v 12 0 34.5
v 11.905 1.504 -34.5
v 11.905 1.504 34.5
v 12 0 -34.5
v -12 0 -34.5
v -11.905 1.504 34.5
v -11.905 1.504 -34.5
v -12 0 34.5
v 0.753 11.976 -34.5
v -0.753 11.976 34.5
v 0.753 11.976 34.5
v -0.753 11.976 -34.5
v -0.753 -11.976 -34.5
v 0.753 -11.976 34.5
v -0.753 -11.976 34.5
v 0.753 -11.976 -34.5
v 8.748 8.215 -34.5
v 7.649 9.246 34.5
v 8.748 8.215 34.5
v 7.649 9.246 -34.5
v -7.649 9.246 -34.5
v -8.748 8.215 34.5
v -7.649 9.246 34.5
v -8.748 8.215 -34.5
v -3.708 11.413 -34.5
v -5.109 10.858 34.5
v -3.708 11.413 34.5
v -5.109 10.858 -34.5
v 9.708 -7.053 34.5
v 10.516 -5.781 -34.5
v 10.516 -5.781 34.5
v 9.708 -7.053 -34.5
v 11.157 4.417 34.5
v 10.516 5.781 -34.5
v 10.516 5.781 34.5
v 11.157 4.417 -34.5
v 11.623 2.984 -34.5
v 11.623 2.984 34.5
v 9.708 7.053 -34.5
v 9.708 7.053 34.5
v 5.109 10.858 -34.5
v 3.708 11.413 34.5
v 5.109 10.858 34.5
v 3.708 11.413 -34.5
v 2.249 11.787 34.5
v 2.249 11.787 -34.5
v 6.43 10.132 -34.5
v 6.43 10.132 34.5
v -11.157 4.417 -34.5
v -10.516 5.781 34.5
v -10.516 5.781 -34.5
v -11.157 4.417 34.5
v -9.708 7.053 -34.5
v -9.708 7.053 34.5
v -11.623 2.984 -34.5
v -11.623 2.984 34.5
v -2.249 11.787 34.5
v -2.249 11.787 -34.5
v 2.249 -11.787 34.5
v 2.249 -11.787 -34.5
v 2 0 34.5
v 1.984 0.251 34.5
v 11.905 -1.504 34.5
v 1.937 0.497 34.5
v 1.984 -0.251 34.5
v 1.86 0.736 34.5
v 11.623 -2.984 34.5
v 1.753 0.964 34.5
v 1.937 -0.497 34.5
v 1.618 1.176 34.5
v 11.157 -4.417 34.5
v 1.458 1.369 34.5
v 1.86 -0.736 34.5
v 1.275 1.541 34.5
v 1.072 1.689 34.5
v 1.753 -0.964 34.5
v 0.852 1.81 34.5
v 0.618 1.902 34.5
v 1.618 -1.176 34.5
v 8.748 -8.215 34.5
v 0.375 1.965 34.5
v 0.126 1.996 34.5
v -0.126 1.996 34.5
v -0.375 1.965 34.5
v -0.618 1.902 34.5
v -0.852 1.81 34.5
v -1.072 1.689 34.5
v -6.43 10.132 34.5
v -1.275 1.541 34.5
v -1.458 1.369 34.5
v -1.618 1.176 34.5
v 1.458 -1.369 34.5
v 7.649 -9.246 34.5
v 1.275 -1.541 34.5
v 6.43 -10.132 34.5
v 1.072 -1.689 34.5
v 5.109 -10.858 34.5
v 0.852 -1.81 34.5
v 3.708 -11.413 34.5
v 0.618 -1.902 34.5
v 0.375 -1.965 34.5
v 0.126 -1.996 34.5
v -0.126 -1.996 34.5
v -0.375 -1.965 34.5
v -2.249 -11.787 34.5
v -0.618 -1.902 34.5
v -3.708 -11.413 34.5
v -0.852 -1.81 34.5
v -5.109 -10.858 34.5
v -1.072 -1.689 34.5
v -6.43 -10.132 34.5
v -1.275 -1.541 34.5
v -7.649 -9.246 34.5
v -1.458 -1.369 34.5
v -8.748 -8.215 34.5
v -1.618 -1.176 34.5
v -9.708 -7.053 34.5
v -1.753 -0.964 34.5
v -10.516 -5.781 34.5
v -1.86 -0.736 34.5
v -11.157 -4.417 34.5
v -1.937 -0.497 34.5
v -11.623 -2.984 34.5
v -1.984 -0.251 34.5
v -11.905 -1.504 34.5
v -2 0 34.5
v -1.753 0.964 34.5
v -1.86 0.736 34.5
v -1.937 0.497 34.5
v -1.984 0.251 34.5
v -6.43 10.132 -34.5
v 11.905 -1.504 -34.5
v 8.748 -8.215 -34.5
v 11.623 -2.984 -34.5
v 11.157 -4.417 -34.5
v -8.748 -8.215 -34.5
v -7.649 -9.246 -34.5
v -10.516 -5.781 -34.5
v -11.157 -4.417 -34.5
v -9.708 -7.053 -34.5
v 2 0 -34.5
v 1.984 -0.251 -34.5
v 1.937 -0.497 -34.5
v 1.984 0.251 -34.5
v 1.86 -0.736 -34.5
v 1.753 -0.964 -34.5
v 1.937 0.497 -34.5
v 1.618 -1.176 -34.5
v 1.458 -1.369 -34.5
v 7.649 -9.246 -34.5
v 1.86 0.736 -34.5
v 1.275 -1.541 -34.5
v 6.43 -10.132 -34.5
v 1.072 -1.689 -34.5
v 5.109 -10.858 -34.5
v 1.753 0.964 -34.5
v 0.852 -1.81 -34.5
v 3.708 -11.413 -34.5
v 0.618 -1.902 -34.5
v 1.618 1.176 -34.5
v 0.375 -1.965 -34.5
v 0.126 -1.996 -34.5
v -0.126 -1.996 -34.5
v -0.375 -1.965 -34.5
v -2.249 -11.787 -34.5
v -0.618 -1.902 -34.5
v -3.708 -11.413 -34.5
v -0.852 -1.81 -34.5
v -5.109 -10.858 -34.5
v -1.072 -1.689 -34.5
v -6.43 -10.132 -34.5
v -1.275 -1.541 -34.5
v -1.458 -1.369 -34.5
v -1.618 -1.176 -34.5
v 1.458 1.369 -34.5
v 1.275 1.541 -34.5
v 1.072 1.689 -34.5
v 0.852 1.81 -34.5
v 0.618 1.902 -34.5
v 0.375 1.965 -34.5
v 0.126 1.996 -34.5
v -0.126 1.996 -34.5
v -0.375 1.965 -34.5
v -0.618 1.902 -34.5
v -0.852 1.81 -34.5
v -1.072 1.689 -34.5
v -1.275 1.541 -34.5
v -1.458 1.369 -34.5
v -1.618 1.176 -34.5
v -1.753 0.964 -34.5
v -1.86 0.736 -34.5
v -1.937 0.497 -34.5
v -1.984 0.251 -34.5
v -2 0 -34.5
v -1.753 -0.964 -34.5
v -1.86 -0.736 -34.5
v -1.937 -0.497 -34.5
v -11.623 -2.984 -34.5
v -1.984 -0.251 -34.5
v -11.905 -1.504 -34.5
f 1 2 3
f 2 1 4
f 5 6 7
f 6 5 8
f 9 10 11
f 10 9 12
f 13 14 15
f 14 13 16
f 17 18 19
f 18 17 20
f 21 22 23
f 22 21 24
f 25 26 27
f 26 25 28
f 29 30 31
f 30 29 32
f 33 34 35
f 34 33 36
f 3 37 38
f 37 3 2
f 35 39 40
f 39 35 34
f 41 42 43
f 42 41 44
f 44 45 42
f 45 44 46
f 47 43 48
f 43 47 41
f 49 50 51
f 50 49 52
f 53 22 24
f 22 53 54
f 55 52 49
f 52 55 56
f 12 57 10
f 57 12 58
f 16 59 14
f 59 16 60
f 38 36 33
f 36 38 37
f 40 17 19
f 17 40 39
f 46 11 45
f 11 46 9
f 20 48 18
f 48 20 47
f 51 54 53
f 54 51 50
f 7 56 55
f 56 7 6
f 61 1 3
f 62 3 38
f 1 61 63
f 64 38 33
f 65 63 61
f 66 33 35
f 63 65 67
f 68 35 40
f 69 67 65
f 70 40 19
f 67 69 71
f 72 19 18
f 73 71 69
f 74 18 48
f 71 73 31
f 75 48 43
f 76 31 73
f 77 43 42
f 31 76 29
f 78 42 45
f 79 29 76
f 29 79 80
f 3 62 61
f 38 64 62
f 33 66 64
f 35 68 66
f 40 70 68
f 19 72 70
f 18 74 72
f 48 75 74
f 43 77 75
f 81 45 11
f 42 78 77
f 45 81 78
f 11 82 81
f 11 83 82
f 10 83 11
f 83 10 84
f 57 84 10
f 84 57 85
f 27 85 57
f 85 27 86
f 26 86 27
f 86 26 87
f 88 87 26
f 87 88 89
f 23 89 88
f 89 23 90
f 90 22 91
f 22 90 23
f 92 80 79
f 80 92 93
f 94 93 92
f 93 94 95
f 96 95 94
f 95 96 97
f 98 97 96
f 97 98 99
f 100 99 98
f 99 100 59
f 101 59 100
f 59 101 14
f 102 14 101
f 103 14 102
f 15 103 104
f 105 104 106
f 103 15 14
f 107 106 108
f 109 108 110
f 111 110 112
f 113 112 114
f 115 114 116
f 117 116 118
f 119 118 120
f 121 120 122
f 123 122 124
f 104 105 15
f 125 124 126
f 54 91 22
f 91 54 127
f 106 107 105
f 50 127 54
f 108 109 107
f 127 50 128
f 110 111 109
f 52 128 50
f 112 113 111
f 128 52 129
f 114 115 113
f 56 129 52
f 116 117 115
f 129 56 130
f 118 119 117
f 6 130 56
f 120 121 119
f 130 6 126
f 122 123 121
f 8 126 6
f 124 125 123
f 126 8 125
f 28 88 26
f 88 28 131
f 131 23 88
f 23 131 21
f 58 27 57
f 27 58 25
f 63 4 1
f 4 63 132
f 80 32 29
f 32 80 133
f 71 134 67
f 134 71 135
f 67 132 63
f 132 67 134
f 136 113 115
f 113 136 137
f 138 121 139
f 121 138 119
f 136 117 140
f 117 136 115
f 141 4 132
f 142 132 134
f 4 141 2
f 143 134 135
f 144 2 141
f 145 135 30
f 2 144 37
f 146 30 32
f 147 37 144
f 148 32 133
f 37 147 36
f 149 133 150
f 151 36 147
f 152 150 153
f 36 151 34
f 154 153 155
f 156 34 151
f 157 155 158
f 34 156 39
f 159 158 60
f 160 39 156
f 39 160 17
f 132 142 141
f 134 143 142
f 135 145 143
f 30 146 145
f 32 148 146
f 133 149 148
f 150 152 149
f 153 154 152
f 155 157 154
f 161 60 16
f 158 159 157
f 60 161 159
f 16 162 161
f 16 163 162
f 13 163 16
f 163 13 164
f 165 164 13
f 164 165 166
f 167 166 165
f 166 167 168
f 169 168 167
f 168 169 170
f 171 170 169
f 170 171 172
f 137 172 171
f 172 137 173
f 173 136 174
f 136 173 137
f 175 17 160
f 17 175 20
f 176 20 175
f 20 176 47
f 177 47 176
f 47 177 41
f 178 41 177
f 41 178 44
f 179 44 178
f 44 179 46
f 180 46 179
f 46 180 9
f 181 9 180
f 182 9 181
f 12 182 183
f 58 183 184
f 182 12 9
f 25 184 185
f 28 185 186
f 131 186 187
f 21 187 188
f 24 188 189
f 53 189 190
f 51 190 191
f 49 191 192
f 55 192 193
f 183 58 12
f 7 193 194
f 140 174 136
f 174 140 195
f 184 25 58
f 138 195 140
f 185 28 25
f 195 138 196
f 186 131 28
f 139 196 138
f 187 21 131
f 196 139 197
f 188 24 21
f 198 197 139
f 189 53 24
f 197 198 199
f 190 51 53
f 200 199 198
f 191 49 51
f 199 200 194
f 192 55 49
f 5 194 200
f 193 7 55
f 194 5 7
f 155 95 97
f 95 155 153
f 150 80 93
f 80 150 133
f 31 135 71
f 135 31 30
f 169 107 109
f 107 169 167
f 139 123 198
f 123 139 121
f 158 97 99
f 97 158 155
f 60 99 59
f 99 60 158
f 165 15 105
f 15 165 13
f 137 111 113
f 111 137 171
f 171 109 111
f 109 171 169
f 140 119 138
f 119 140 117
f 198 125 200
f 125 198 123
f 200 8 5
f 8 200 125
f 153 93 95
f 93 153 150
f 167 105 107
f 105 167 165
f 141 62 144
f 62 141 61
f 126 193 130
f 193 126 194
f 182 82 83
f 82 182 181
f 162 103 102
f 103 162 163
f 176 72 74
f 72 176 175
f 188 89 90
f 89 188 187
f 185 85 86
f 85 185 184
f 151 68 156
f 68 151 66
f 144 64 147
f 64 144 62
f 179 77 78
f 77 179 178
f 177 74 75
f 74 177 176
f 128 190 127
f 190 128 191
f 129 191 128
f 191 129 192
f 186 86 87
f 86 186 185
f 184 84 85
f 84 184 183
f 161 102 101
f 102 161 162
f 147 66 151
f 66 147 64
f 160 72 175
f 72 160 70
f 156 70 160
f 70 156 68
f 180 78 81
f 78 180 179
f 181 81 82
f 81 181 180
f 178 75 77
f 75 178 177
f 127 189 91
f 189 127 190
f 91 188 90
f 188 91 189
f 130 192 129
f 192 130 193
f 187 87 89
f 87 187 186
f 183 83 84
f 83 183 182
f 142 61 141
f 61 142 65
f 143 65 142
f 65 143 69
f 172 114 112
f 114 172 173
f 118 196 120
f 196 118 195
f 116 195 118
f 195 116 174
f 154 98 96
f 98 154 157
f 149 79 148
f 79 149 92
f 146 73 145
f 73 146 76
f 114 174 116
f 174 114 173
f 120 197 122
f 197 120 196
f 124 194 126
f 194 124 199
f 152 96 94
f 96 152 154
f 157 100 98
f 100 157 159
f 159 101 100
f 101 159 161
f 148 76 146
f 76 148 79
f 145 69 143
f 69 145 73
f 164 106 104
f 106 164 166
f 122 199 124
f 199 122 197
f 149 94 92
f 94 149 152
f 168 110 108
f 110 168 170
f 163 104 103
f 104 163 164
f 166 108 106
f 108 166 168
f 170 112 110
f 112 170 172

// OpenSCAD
$fn = 50;


difference() {
	union() {
		translate(v = [0, 0, -34.5000000000]) {
			cylinder(h = 69, r = 12.0000000000);
		}
	}
	union() {
		translate(v = [0, 0, -100.0000000000]) {
			cylinder(h = 200, r = 2.0000000000);
		}
	}
}
